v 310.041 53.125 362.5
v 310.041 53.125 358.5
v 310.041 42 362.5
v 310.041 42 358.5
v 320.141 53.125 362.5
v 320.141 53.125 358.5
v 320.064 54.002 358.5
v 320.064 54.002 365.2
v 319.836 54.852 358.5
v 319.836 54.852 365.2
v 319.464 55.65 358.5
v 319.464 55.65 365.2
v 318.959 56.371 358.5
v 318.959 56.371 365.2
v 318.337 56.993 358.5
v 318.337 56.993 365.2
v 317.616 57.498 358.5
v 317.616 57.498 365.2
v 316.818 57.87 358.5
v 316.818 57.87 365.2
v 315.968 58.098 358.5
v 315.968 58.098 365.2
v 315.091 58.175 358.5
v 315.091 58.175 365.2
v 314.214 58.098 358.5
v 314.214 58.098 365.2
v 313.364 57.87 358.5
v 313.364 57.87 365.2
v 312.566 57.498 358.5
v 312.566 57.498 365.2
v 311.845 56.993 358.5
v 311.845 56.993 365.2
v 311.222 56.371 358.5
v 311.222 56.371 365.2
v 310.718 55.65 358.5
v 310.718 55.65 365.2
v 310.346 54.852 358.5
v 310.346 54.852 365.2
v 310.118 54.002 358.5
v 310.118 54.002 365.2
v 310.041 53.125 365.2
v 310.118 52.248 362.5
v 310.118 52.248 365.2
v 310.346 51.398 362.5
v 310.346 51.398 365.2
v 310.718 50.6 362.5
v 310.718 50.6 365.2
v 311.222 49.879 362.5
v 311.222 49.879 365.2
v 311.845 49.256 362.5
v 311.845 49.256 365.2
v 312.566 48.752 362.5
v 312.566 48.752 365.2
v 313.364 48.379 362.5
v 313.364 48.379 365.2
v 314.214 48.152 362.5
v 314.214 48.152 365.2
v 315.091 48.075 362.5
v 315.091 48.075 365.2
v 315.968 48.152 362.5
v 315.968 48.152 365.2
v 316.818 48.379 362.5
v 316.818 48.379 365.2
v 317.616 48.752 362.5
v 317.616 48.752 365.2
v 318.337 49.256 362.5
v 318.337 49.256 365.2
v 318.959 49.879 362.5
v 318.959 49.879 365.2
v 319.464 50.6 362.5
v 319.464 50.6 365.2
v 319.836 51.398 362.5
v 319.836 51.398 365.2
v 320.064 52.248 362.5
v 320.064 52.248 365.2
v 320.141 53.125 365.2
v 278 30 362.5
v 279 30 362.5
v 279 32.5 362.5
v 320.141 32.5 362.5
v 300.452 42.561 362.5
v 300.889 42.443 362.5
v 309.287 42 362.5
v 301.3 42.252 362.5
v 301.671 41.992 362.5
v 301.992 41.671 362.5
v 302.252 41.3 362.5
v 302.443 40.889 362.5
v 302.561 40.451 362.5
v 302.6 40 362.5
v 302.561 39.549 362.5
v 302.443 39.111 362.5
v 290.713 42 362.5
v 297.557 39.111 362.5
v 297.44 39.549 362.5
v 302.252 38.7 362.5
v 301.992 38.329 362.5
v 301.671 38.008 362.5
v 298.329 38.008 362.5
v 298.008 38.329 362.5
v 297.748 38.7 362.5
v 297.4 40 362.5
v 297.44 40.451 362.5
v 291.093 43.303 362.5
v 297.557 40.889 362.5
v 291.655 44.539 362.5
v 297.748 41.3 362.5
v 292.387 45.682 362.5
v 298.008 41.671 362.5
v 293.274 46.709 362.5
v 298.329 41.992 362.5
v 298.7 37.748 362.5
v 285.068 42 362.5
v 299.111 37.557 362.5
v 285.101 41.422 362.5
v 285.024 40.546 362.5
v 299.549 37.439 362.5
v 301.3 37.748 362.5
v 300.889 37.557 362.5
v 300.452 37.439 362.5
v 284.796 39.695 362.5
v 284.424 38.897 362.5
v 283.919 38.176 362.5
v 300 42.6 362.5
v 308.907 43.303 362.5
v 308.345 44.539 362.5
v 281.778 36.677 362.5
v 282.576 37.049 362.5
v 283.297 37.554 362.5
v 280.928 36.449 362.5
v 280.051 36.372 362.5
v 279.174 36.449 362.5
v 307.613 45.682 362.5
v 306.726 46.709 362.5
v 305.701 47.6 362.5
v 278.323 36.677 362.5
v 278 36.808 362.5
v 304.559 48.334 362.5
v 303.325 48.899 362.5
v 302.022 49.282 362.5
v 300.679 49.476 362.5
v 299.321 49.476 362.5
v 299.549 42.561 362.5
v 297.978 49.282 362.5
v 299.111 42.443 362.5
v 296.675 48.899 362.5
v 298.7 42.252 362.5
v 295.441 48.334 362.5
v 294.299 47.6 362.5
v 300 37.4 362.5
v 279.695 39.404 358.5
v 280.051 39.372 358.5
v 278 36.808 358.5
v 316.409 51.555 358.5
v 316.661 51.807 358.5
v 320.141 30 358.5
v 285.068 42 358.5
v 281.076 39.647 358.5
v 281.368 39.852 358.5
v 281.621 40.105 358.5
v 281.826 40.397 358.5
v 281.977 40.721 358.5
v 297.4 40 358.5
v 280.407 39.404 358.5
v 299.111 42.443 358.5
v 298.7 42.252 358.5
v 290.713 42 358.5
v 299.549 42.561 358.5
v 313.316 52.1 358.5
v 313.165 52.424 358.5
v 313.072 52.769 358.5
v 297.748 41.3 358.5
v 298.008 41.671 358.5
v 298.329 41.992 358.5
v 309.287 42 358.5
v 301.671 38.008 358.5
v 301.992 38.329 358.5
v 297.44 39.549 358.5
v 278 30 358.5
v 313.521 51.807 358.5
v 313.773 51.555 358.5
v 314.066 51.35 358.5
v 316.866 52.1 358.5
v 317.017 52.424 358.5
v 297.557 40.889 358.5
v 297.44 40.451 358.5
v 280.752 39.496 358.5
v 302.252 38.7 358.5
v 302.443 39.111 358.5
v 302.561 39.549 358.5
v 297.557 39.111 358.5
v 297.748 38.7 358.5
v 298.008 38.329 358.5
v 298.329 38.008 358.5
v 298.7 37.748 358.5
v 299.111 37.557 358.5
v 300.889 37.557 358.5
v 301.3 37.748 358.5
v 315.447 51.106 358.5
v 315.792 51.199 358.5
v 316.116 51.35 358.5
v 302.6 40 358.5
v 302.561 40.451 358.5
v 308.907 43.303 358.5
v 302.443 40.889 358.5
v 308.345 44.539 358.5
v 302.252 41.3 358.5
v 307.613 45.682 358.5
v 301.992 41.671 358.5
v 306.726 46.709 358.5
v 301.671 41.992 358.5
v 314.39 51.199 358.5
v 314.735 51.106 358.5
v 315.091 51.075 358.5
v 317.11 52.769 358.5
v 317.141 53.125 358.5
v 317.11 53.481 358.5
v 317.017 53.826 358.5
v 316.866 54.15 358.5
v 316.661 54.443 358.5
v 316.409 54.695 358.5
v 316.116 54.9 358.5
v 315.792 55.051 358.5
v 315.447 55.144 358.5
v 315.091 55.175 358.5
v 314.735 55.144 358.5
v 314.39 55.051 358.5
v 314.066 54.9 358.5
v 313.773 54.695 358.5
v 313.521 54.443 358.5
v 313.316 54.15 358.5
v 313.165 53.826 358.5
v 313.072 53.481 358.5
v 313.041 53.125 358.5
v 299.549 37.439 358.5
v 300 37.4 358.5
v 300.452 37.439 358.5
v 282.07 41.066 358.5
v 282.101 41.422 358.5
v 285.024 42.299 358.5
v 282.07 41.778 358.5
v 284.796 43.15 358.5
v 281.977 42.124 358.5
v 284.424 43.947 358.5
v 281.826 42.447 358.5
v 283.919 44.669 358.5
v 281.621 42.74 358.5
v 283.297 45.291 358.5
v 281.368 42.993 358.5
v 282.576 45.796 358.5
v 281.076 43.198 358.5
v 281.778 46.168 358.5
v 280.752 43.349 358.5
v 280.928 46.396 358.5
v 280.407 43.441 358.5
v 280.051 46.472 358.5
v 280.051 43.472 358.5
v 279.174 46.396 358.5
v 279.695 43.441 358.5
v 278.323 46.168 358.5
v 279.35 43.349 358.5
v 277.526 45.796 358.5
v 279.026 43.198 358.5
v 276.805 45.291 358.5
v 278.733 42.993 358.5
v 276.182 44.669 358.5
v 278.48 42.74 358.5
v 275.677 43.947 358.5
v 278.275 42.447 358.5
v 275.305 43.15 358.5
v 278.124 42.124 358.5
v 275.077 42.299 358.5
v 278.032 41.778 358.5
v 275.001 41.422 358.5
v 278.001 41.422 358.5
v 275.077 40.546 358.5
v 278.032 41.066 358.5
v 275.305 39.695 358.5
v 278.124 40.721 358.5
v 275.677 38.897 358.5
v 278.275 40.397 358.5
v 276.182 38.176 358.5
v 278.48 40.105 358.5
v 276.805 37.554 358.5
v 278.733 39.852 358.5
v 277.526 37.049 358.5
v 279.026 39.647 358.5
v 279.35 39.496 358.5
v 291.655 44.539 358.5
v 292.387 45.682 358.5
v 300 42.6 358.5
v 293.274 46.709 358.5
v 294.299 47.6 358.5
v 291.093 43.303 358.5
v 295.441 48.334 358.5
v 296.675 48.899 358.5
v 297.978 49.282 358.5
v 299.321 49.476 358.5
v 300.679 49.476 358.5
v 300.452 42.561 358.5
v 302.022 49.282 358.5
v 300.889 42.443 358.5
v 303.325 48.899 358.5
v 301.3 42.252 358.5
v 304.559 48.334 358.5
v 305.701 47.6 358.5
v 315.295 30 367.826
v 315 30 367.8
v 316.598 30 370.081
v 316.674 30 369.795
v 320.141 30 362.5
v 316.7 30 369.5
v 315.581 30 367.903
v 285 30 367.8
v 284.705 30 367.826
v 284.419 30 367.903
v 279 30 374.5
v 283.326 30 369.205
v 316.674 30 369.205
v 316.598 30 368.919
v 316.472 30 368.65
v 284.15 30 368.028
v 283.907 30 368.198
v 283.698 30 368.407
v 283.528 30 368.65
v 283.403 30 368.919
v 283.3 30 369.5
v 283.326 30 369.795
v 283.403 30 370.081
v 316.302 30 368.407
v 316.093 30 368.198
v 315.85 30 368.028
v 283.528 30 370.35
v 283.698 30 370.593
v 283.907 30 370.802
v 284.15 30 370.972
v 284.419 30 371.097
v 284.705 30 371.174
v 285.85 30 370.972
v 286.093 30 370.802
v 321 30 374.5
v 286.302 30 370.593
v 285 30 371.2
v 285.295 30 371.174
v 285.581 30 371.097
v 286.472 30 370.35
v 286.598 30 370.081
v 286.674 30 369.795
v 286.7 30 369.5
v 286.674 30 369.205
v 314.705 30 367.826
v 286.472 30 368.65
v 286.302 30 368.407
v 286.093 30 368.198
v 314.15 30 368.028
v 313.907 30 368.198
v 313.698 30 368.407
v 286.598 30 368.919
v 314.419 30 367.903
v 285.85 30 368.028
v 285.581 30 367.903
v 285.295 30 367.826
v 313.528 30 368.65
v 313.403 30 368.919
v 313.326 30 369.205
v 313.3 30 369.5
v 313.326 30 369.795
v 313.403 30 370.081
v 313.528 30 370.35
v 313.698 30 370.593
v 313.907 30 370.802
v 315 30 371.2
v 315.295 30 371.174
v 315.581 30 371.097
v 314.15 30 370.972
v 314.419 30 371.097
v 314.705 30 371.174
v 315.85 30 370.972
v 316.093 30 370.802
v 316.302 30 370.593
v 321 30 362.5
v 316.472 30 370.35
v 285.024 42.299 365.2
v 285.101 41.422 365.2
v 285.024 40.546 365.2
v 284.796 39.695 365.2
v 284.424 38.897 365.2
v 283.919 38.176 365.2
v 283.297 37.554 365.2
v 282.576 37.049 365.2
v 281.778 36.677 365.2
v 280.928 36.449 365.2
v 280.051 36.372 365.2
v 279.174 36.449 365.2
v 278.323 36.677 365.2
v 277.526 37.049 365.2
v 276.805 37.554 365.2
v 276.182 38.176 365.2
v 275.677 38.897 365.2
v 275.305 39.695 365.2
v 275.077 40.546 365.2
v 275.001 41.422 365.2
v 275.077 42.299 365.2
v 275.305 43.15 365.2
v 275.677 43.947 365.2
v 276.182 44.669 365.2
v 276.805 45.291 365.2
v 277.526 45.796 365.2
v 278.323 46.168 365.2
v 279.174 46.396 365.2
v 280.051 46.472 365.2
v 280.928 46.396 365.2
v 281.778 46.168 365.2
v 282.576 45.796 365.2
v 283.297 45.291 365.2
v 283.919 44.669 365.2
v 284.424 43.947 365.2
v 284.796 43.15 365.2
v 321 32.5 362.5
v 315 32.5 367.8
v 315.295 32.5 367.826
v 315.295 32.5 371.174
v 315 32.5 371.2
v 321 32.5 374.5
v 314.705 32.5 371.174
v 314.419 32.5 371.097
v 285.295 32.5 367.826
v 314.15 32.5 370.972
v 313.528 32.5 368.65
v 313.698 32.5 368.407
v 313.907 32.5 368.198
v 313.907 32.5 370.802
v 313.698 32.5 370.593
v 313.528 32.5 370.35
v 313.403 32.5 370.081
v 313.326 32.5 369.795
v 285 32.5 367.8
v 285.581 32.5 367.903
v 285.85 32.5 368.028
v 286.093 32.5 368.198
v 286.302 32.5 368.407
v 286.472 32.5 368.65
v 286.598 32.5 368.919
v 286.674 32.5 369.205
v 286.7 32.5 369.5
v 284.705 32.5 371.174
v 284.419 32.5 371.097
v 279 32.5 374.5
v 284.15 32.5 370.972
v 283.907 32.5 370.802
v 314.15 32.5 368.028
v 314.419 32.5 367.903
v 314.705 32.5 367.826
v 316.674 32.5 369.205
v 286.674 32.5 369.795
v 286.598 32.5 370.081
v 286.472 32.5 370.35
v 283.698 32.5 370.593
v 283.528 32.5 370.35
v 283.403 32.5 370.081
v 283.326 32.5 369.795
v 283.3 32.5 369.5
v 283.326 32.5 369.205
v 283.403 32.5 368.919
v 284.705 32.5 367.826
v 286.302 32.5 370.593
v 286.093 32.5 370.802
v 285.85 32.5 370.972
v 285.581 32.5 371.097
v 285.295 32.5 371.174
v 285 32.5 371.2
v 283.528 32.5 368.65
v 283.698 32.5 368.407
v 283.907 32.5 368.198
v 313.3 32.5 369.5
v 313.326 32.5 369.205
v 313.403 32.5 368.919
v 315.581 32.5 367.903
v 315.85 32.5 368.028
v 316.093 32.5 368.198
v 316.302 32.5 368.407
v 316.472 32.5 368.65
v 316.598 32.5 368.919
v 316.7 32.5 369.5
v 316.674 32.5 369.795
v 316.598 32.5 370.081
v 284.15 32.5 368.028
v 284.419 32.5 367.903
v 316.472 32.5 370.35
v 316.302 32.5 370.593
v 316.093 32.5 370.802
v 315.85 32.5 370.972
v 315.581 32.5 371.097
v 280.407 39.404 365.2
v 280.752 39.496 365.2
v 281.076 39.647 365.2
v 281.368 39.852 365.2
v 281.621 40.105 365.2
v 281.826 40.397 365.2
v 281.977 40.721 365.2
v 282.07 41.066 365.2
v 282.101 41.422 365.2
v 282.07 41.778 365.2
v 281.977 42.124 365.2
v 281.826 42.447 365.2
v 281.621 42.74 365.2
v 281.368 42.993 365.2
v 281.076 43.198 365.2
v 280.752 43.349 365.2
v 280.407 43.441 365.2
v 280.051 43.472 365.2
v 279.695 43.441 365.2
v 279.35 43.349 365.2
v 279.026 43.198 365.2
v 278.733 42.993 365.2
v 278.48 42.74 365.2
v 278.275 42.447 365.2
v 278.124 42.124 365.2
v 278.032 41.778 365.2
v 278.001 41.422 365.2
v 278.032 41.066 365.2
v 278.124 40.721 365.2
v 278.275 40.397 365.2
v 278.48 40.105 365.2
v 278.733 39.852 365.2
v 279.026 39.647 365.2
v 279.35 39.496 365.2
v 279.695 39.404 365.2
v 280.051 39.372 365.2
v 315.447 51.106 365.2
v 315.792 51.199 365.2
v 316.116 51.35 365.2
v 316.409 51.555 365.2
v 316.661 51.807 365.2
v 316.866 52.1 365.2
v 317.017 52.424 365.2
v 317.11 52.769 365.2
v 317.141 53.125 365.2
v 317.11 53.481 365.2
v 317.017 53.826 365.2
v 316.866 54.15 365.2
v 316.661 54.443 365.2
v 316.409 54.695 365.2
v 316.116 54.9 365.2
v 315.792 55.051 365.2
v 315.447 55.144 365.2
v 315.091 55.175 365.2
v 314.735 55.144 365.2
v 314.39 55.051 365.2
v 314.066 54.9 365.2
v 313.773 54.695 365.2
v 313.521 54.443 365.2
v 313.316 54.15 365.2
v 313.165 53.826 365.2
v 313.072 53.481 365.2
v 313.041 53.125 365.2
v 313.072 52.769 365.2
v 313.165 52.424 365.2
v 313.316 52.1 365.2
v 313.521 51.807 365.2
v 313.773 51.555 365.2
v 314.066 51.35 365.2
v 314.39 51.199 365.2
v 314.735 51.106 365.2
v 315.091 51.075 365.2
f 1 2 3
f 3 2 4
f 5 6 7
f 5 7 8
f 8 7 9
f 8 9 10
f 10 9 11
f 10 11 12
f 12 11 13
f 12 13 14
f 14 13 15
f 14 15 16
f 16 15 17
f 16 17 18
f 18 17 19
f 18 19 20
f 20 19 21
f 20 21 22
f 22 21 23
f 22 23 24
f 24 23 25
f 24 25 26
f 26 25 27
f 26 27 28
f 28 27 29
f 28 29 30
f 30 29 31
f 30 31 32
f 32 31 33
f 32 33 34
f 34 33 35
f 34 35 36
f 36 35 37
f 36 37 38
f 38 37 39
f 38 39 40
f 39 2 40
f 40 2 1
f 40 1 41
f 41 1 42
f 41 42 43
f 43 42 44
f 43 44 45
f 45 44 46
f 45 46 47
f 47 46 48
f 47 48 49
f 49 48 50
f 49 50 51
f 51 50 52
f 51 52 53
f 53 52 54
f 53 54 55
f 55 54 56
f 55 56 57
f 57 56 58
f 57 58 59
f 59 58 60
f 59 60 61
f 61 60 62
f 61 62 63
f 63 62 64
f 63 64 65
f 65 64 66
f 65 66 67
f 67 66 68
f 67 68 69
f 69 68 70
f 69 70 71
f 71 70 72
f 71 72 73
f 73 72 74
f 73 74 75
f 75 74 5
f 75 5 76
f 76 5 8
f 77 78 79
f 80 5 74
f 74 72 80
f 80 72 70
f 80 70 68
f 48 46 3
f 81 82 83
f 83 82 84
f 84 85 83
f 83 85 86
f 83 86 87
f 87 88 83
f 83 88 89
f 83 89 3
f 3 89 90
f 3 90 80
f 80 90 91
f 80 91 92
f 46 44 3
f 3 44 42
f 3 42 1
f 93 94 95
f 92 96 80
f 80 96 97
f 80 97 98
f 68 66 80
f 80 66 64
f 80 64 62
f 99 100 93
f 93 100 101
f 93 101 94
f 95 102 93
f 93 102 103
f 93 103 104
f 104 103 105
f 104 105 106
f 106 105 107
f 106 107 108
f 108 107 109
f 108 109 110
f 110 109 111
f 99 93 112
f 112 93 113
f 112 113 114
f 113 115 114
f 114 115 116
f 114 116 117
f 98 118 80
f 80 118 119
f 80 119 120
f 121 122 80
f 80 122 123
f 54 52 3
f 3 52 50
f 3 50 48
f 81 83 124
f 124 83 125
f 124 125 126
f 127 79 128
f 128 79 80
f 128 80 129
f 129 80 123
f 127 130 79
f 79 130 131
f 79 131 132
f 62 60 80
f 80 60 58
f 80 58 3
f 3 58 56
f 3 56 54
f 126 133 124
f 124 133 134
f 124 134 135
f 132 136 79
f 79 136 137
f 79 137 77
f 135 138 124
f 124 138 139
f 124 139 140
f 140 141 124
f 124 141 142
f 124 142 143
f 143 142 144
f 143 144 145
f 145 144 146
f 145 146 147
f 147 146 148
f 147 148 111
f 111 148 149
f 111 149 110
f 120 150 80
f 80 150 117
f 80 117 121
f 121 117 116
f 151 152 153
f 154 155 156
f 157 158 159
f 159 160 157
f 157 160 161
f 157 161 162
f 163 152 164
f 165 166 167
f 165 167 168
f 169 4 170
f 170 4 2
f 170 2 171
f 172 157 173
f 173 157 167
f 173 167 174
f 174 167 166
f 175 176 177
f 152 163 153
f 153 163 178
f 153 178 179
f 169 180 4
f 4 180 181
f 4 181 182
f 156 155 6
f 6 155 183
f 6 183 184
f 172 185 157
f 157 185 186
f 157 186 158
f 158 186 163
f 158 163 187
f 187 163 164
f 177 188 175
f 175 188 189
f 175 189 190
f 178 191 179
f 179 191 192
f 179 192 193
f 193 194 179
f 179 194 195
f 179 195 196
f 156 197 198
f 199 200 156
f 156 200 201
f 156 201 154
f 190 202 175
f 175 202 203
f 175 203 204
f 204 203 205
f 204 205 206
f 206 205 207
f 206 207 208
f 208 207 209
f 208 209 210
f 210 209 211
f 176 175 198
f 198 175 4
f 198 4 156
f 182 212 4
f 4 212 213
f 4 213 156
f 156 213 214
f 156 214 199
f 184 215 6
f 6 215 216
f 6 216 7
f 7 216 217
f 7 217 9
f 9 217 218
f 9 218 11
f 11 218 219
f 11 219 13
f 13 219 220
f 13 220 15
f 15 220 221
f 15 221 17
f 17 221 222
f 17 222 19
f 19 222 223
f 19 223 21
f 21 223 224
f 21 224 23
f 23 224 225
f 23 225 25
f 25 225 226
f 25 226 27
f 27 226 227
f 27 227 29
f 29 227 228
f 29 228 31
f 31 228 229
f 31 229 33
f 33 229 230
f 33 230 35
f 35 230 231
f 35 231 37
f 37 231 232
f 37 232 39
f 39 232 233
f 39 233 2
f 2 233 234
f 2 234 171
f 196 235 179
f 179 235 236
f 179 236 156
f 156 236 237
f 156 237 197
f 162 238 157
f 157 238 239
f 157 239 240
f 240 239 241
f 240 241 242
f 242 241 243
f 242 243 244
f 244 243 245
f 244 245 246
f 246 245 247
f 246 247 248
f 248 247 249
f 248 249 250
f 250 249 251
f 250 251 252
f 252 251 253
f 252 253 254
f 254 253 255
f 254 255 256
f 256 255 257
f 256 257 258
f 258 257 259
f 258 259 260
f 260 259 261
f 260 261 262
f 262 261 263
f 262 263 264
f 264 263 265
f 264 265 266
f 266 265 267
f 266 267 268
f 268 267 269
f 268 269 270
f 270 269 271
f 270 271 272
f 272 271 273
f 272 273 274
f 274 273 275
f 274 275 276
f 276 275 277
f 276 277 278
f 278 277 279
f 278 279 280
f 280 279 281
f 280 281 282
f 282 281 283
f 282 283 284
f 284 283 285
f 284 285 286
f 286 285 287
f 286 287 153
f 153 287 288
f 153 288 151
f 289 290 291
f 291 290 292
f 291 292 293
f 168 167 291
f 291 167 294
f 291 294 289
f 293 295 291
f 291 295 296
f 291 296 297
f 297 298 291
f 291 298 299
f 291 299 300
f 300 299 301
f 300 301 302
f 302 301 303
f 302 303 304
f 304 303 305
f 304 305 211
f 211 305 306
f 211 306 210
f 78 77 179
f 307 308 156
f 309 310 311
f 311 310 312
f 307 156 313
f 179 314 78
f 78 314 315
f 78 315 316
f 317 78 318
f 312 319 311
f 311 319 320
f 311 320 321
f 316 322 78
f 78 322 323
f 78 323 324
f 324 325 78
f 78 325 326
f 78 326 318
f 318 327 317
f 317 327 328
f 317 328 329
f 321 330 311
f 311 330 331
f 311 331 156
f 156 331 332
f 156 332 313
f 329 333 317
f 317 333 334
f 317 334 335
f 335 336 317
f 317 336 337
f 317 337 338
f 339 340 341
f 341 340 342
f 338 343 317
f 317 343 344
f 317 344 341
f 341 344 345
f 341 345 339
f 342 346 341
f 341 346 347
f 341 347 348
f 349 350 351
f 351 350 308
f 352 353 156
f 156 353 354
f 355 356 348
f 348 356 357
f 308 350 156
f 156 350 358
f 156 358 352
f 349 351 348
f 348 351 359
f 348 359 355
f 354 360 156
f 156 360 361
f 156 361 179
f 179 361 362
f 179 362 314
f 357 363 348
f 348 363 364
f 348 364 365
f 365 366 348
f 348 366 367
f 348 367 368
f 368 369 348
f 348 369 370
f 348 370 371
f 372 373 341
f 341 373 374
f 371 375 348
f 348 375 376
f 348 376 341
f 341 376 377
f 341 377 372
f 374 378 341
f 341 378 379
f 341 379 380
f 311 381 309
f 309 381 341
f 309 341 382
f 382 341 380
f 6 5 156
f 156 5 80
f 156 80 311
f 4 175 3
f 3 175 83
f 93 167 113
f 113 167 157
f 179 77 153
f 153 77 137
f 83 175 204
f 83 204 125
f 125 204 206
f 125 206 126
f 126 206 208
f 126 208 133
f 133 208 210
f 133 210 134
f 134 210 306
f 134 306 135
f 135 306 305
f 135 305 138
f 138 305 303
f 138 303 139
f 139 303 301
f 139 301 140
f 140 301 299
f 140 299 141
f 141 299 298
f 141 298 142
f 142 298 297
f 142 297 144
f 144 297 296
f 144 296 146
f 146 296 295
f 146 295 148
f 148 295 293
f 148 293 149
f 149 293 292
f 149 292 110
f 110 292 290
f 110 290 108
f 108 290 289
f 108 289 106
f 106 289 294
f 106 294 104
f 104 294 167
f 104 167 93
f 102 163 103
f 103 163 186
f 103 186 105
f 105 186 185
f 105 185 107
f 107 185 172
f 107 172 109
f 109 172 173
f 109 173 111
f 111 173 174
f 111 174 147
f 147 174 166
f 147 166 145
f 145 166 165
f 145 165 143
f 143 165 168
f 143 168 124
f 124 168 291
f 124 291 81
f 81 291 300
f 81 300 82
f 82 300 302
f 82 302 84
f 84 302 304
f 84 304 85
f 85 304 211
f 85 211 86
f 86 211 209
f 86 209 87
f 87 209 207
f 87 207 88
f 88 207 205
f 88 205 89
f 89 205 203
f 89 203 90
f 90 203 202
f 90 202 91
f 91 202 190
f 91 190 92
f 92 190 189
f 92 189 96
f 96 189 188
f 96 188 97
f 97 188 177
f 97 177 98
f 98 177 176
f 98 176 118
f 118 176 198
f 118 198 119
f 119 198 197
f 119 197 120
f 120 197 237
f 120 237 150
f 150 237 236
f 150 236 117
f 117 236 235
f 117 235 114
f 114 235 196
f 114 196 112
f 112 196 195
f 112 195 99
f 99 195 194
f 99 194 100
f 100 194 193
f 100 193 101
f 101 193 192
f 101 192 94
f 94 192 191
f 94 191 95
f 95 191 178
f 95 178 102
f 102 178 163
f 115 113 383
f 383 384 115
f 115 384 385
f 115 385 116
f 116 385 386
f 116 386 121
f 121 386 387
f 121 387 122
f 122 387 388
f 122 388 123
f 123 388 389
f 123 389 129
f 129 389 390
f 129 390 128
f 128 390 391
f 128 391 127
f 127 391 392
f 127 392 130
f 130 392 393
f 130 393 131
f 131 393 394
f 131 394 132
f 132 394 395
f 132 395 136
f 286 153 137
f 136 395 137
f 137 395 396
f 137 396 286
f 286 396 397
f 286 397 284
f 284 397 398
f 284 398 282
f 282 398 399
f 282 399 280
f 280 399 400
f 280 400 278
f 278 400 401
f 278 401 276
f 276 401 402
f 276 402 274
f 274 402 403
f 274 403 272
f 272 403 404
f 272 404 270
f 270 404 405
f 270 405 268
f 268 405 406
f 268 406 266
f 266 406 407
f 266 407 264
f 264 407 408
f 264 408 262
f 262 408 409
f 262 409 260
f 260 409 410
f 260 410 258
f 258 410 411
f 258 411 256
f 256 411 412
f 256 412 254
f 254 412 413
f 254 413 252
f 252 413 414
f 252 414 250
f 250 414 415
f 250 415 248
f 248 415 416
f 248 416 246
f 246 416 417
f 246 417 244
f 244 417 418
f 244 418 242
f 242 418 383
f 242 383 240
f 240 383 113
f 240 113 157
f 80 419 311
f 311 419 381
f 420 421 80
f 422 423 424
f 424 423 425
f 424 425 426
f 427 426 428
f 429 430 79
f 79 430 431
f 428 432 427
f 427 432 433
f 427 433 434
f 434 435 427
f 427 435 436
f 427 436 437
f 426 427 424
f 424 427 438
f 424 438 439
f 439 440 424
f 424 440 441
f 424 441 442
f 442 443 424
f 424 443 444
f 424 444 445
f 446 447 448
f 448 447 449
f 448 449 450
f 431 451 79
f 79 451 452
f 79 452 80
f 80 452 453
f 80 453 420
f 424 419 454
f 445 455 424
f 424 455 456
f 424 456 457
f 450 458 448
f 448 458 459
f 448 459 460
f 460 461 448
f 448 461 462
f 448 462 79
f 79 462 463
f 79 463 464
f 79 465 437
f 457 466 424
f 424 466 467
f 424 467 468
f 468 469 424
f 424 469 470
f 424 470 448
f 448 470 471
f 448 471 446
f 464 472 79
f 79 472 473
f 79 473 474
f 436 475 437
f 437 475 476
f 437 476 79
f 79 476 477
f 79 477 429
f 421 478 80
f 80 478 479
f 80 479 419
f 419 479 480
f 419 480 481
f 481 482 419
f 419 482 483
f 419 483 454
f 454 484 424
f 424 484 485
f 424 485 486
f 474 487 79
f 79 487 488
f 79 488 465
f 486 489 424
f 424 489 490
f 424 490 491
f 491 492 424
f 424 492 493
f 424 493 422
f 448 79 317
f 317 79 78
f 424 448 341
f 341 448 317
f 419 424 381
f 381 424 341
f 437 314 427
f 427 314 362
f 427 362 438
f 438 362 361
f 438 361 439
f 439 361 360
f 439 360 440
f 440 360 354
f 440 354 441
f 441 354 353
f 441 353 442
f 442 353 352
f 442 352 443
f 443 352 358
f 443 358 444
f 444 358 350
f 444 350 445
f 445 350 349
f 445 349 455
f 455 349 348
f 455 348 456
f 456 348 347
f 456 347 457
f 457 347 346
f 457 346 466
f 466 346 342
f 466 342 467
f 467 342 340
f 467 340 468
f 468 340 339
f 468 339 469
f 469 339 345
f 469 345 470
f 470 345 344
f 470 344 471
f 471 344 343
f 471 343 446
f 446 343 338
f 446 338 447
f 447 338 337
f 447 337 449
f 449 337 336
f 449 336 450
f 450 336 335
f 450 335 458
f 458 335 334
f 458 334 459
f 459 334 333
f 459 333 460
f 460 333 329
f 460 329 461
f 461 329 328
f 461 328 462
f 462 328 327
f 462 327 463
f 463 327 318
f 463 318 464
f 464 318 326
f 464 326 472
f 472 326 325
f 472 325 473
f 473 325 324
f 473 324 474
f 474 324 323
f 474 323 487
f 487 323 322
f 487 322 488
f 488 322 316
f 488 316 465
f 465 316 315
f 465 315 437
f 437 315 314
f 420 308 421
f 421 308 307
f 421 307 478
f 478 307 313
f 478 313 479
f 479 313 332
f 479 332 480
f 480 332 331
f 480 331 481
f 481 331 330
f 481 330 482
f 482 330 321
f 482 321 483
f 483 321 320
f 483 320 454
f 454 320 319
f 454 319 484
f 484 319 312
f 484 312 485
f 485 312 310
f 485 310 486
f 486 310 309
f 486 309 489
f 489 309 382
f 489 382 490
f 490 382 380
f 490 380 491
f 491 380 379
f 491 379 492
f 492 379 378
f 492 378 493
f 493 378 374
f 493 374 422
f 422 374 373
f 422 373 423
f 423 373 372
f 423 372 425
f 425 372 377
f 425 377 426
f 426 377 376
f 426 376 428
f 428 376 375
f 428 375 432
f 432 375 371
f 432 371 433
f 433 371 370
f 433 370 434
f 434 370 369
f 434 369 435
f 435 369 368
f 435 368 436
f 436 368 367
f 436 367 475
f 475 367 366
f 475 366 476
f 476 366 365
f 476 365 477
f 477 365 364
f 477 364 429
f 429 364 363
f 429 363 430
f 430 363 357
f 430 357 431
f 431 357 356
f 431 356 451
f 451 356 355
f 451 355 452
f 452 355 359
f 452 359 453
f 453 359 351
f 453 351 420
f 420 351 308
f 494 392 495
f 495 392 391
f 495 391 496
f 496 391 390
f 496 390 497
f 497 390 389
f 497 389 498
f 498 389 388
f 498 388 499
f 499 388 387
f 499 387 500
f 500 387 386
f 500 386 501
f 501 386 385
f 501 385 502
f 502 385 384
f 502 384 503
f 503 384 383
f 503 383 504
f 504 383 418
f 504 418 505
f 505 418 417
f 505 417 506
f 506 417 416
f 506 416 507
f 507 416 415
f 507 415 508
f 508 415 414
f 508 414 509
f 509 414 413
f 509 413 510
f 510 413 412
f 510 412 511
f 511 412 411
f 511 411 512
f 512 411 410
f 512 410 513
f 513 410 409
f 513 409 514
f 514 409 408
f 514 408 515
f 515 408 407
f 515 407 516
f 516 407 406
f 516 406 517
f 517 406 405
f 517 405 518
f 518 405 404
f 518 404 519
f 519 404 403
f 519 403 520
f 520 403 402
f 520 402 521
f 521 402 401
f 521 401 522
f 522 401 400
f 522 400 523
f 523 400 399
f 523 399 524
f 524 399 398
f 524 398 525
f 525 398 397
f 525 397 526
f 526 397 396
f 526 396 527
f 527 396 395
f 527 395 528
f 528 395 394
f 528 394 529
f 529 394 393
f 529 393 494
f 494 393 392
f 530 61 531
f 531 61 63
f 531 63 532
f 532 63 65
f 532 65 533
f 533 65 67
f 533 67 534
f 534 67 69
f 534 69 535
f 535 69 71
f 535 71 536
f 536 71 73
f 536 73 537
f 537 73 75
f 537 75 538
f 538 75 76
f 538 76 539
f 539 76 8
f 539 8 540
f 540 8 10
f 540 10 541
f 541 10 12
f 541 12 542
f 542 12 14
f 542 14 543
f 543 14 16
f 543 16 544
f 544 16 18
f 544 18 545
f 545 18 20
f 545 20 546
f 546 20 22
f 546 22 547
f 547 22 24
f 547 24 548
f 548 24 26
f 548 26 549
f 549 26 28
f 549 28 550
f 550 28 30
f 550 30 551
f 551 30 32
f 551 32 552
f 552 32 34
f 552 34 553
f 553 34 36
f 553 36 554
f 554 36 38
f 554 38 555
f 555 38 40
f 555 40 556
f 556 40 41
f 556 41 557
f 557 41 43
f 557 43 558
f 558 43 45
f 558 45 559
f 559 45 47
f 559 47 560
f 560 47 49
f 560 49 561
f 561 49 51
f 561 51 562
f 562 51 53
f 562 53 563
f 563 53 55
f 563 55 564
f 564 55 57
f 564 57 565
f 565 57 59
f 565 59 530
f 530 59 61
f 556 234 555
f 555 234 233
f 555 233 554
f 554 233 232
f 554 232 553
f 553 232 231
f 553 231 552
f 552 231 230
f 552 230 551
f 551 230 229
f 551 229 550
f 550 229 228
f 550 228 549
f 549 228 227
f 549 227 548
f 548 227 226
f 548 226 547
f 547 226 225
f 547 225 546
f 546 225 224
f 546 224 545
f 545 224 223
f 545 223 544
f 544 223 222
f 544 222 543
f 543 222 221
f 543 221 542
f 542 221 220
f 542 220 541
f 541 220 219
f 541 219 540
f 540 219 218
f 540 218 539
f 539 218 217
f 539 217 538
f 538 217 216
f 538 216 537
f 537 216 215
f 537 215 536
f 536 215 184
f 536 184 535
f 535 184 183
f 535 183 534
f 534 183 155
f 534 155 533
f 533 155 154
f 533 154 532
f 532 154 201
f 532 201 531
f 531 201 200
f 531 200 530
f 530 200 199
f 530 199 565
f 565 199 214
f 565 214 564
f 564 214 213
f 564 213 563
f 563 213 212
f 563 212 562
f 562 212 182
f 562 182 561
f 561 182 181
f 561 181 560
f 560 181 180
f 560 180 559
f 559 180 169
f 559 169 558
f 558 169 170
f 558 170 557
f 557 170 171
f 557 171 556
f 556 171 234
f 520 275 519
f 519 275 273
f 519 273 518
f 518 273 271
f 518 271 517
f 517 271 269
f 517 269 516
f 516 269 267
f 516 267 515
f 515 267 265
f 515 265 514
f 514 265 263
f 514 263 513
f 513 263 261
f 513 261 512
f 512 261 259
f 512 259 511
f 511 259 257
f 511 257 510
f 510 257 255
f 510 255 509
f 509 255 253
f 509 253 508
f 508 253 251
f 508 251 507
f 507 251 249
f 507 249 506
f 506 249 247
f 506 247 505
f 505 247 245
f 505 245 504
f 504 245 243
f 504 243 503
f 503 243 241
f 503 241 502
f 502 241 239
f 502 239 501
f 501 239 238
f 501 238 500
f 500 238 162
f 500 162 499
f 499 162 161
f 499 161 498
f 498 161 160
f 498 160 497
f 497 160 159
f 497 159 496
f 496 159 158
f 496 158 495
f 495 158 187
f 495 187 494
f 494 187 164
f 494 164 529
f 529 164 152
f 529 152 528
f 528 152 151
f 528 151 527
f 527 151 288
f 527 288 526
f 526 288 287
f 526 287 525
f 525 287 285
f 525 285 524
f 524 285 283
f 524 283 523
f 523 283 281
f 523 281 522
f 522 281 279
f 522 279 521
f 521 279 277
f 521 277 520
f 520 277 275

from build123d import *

# Parameters (mm, degrees)
SKETCH1_W           = 41
SKETCH1_H           = 12
BOSS_EXTRUDE1_DEPTH = 4
SKETCH2_R           = 9.5
SKETCH2_R_2         = 2.6
BOSS_EXTRUDE2_DEPTH = 4
SKETCH3_R           = 5.05
BOSS_EXTRUDE3_DEPTH = 4
SKETCH4_R           = 5.05
BOSS_EXTRUDE4_DEPTH = 4
SKETCH5_W           = 10.1
SKETCH5_H           = 23.124939501
BOSS_EXTRUDE5_DEPTH = 4
SKETCH6_W           = 42
SKETCH6_H           = 12
SKETCH6_R           = 1.7
BOSS_EXTRUDE6_DEPTH = 2.5
SKETCH7_R           = 2.6
CUT_EXTRUDE1_DEPTH  = 4
SKETCH8_R           = 5.05
BOSS_EXTRUDE7_DEPTH = 2.7
SKETCH9_R           = 2.05
CUT_EXTRUDE2_DEPTH  = 6.7


with BuildPart() as part:
    # Sketch1 → Boss-Extrude1 (new body)
    with BuildSketch(Plane.XY.offset(358.5)):
        with Locations((298.5, 36)):
            Rectangle(SKETCH1_W, SKETCH1_H)
    extrude(amount=BOSS_EXTRUDE1_DEPTH)

    # Sketch2 → Boss-Extrude2 (add)
    with BuildSketch(Plane.XY.offset(358.5)):
        with Locations((300, 40)):
            Circle(SKETCH2_R)
        with Locations((300, 40)):
            Circle(SKETCH2_R_2, mode=Mode.SUBTRACT)
    extrude(amount=BOSS_EXTRUDE2_DEPTH)

    # Sketch4 → Boss-Extrude4 (add)
    with BuildSketch(Plane.XY.offset(358.5)):
        with Locations((280.050647312, 41.422437104)):
            Circle(SKETCH4_R)
    extrude(amount=BOSS_EXTRUDE4_DEPTH)



with BuildPart() as body_2:
    # Sketch3 → Boss-Extrude3 (new body)
    with BuildSketch(Plane.XY.offset(358.5)):
        with Locations((315.090923202, 53.124939501)):
            Circle(SKETCH3_R)
    extrude(amount=BOSS_EXTRUDE3_DEPTH)


with BuildPart() as part_1:
    add(part.part)

    add(body_2.part)  # Boss-Extrude5 merges body 2
    # Sketch5 → Boss-Extrude5 (add)
    with BuildSketch(Plane.XY.offset(358.5)):
        with Locations((315.090923202, 41.562469751)):
            Rectangle(SKETCH5_W, SKETCH5_H)
    extrude(amount=BOSS_EXTRUDE5_DEPTH)

    # Sketch6 → Boss-Extrude6 (add)
    with BuildSketch(Plane(origin=(0, 30, 0), x_dir=(1, 0, 0), z_dir=(0, 1, 0))):
        with Locations((300, -368.5)):
            Rectangle(SKETCH6_W, SKETCH6_H)
        with Locations((285, -369.5)):
            Circle(SKETCH6_R, mode=Mode.SUBTRACT)
        with Locations((315, -369.5)):
            Circle(SKETCH6_R, mode=Mode.SUBTRACT)
    extrude(amount=BOSS_EXTRUDE6_DEPTH)

    # Sketch7 → Cut-Extrude1 (cut)
    with BuildSketch(Plane.XY.offset(358.5)):
        with Locations((300, 40)):
            Circle(SKETCH7_R)
    extrude(amount=CUT_EXTRUDE1_DEPTH, mode=Mode.SUBTRACT)

    # Sketch8 → Boss-Extrude7 (add)
    with BuildSketch(Plane.XY.offset(362.5)):
        with Locations((315.090923202, 53.124939501)):
            Circle(SKETCH8_R)
        with Locations((280.050647312, 41.422437104)):
            Circle(SKETCH8_R)
    extrude(amount=BOSS_EXTRUDE7_DEPTH)

    # Sketch9 → Cut-Extrude2 (cut)
    with BuildSketch(Plane.XY.offset(358.5)):
        with Locations((315.090923202, 53.124939501)):
            Circle(SKETCH9_R)
        with Locations((280.050647312, 41.422437104)):
            Circle(SKETCH9_R)
    extrude(amount=CUT_EXTRUDE2_DEPTH, mode=Mode.SUBTRACT)


solid = part_1.part
